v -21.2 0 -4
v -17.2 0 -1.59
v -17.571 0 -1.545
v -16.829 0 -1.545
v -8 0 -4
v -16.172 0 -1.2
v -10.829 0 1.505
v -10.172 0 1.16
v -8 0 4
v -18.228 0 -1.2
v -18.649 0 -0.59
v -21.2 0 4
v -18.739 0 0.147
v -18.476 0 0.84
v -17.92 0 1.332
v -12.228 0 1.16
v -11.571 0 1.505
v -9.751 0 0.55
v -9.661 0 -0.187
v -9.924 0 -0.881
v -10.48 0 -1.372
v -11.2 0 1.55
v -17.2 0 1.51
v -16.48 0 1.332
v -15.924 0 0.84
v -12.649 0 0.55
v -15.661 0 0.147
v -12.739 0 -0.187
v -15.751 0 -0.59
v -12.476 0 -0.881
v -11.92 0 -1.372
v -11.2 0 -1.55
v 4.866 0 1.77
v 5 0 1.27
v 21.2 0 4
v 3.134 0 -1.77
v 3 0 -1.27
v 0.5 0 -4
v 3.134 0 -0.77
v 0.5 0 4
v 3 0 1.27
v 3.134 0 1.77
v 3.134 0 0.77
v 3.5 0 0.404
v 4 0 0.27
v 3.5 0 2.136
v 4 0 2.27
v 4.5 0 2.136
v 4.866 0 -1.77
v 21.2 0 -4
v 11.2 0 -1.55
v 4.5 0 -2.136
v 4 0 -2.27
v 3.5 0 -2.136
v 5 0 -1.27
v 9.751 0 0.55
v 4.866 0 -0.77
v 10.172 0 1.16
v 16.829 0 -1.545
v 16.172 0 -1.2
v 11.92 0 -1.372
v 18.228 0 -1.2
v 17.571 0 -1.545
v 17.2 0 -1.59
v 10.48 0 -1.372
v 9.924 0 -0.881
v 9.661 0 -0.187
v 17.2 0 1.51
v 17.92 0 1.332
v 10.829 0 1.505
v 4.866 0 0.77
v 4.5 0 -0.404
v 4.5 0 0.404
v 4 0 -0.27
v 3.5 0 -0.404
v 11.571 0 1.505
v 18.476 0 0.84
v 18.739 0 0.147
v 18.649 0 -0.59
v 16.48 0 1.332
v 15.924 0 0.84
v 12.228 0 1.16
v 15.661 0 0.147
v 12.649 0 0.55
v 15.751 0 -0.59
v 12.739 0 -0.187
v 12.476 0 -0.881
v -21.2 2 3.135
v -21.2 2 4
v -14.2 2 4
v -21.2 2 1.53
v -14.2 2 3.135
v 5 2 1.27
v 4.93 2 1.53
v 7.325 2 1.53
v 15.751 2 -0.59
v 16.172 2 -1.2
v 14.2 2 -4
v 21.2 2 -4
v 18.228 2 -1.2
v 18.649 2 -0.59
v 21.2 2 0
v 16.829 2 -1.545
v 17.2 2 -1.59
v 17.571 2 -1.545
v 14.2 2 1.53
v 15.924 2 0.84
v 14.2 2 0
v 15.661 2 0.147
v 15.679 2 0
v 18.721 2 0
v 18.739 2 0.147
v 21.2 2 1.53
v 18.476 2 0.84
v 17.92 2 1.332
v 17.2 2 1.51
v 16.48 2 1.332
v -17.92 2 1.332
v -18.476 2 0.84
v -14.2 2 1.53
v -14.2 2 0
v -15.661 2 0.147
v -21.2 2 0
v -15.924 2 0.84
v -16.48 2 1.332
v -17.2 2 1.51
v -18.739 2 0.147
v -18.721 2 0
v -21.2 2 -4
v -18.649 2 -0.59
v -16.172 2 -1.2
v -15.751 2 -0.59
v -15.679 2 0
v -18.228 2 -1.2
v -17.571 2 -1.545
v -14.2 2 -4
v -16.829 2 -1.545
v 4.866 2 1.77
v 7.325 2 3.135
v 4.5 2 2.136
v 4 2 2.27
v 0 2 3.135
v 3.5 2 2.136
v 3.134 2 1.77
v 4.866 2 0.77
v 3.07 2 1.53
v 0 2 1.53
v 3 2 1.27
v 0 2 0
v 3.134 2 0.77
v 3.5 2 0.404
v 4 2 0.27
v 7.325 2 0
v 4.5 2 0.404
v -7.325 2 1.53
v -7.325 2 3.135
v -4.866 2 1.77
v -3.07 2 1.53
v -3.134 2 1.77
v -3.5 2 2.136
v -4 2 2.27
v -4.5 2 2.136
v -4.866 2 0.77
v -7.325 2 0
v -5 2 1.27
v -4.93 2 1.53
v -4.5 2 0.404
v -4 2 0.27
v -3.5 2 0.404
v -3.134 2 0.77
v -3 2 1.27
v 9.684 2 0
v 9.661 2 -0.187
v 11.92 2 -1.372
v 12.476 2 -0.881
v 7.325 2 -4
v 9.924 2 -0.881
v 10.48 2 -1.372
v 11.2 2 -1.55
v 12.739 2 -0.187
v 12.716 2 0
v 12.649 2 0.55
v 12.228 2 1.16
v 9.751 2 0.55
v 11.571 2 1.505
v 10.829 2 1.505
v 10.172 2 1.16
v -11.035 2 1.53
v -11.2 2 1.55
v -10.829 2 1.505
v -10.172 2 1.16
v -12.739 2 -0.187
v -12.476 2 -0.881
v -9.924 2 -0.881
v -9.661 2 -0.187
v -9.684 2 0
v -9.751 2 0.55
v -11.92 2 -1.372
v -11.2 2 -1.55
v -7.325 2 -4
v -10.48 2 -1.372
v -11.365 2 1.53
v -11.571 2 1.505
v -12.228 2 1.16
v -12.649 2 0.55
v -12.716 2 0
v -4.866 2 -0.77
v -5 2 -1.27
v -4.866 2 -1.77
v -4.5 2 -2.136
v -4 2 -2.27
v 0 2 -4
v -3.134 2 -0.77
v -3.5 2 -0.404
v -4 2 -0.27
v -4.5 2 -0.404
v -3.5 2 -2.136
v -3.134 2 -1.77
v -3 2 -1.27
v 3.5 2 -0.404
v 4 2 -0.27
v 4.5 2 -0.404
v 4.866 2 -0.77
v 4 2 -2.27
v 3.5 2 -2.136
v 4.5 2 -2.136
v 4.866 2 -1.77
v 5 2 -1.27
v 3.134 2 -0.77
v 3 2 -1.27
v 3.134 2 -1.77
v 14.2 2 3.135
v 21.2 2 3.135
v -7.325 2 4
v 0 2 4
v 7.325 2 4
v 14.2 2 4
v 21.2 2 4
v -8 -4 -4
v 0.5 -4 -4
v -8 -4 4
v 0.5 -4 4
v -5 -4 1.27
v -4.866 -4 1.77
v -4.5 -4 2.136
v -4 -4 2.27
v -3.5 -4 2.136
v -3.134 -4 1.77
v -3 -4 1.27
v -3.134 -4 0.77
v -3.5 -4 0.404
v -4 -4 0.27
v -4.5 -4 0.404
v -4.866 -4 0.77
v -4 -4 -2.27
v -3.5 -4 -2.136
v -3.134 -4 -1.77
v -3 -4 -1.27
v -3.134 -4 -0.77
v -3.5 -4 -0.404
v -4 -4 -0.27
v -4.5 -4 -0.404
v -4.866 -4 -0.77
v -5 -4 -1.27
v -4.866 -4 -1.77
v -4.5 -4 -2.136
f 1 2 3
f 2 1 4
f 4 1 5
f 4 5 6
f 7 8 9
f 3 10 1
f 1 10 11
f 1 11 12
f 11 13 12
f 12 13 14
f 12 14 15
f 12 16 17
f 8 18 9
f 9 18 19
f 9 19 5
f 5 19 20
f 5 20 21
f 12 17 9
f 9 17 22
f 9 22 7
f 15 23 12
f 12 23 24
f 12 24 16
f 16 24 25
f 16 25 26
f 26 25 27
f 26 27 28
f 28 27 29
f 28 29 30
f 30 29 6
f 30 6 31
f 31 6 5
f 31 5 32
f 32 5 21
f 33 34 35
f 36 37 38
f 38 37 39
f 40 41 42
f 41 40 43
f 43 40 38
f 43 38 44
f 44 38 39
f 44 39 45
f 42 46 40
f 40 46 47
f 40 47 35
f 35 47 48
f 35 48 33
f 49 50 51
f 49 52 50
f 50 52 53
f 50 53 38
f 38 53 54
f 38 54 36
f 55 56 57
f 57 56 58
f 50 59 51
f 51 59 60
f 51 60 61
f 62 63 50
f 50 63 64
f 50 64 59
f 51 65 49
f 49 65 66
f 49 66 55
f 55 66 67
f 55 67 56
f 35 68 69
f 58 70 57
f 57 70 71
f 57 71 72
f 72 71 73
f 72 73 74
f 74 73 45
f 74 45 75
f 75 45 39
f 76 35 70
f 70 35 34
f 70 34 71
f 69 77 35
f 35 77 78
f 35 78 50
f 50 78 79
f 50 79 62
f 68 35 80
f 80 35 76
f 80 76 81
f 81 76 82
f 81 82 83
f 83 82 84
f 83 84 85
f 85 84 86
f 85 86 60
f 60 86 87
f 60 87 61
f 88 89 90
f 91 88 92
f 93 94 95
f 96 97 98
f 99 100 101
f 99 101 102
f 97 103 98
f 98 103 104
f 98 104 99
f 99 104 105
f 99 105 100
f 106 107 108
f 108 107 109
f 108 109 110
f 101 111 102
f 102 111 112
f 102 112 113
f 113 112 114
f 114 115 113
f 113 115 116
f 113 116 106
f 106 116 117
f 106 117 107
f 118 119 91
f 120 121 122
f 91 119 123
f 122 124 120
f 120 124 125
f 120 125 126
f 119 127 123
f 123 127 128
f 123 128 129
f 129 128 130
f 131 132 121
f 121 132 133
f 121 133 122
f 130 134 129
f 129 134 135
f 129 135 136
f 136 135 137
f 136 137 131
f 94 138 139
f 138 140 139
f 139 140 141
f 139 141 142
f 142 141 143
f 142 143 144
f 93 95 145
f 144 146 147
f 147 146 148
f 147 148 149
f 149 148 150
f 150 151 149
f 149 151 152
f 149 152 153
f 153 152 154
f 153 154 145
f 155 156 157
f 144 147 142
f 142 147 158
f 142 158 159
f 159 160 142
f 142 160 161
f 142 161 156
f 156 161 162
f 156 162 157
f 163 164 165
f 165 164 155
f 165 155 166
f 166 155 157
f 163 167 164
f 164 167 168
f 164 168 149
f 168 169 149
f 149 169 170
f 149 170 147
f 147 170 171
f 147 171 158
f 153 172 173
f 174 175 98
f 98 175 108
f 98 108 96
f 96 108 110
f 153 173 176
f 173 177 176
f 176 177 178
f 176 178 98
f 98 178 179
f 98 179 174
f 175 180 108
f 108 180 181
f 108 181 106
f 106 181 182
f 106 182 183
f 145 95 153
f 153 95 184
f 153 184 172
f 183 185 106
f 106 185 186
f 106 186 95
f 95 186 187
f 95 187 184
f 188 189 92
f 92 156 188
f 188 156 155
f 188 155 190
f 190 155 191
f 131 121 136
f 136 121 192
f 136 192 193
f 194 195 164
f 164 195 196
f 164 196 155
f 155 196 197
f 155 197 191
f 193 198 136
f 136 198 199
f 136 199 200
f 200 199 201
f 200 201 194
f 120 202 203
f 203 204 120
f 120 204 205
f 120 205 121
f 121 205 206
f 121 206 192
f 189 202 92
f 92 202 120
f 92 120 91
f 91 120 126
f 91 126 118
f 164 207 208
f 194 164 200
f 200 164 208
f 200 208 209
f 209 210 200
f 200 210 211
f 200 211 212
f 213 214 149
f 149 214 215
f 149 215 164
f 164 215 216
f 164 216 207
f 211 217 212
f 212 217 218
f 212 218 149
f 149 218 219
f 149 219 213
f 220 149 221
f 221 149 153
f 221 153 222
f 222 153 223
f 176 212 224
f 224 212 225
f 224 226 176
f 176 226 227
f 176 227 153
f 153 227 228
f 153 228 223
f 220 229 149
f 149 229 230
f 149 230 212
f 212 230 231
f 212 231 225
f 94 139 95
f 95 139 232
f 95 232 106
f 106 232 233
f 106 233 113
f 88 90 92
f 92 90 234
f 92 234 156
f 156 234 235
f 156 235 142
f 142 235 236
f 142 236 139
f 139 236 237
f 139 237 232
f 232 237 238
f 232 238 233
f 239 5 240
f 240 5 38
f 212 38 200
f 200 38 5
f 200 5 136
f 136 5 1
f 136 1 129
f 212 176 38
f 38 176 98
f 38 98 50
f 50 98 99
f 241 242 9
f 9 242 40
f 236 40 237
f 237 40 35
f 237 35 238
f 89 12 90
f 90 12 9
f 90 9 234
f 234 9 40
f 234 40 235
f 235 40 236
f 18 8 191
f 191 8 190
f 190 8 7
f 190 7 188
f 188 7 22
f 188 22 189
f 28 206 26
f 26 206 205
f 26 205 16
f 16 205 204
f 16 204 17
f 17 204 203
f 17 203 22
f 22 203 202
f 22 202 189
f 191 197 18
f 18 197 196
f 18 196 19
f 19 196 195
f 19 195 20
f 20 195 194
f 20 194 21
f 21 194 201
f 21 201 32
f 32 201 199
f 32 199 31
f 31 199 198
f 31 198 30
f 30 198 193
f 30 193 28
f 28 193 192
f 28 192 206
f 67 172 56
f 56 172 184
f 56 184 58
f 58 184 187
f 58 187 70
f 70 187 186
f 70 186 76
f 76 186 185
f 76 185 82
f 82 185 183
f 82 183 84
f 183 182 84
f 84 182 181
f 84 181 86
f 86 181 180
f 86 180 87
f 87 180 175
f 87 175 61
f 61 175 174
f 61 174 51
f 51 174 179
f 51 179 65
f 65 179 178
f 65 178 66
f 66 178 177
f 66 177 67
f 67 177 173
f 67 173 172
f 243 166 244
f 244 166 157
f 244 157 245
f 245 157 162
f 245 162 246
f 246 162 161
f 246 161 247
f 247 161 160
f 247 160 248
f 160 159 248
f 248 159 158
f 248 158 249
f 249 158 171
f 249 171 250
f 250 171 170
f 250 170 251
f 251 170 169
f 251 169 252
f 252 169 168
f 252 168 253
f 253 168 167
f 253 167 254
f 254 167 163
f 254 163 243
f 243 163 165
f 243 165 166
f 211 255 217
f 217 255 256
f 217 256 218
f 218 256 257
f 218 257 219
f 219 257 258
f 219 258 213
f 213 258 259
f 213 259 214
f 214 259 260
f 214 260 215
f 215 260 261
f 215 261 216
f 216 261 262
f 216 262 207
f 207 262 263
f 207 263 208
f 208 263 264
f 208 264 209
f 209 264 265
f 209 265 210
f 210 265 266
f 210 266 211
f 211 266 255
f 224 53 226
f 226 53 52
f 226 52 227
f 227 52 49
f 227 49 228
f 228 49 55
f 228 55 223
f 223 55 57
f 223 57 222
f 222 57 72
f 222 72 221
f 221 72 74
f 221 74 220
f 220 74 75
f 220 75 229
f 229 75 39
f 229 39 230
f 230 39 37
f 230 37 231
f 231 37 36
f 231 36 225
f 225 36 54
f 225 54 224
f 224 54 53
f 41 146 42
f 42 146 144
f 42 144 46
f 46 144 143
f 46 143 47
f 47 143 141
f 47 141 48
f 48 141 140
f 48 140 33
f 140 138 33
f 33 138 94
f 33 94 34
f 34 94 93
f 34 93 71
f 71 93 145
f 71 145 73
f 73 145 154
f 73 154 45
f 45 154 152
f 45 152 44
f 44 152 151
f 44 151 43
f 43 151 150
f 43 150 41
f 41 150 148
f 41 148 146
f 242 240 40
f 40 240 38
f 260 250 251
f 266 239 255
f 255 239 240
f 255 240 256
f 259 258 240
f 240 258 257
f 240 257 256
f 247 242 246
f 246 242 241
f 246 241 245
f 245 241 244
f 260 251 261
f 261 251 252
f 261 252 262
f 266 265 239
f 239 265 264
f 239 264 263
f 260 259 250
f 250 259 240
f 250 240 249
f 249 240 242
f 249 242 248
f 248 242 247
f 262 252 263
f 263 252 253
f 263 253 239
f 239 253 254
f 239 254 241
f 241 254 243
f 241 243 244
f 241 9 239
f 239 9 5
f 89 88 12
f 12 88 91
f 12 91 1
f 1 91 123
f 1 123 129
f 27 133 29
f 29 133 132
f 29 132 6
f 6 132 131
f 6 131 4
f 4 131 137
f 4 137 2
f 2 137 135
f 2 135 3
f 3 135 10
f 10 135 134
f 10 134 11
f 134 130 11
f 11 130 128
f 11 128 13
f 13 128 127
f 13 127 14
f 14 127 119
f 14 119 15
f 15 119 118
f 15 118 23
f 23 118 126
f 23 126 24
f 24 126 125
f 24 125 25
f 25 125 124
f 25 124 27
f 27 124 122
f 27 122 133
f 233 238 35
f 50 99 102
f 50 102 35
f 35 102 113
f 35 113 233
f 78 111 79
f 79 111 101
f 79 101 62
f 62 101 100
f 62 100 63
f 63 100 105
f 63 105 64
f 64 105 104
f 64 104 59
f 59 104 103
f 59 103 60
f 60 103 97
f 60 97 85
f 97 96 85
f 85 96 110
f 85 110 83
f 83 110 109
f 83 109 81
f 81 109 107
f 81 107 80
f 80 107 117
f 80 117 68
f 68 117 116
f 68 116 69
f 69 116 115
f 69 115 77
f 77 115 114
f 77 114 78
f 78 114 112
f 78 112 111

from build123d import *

# Parameters (mm, degrees)
SKETCH1_W           = 30.4
SKETCH1_H           = 8
SKETCH1_R           = 1.55
SKETCH1_R_2         = 1
BOSS_EXTRUDE1_DEPTH = 2
SKETCH3_W           = 1
SKETCH3_H           = 8
BOSS_EXTRUDE2_DEPTH = 4
BOSS_EXTRUDE3_START = 4
SKETCH4_W           = 7.5
SKETCH4_H           = 8
SKETCH4_R           = 1
BOSS_EXTRUDE3_DEPTH = 4
SKETCH6_W           = 6
SKETCH6_H           = 8
SKETCH6_R           = 1.55
BOSS_EXTRUDE4_DEPTH = 2


with BuildPart() as part:
    # Sketch1 → Boss-Extrude1 (new body)
    with BuildSketch(Plane(origin=(0, 0, 0), x_dir=(1, 0, 0), z_dir=(0, 1, 0))):
        Rectangle(SKETCH1_W, SKETCH1_H)
        with Locations(Location((-11.2, 0, 0), (0, 0, 270))):
            Circle(SKETCH1_R, mode=Mode.SUBTRACT)
        with Locations(Location((11.2, 0, 0), (0, 0, 90))):
            Circle(SKETCH1_R, mode=Mode.SUBTRACT)
        with Locations(Location((-4, 1.27, 0), (0, 0, 270))):
            Circle(SKETCH1_R_2, mode=Mode.SUBTRACT)
        with Locations(Location((-4, -1.27, 0), (0, 0, 270))):
            Circle(SKETCH1_R_2, mode=Mode.SUBTRACT)
        with Locations(Location((4, 1.27, 0), (0, 0, 270))):
            Circle(SKETCH1_R_2, mode=Mode.SUBTRACT)
        with Locations(Location((4, -1.27, 0), (0, 0, 270))):
            Circle(SKETCH1_R_2, mode=Mode.SUBTRACT)
    extrude(amount=BOSS_EXTRUDE1_DEPTH)

    # Sketch3 → Boss-Extrude2 (add)
    with BuildSketch(Plane.XZ):
        Rectangle(SKETCH3_W, SKETCH3_H)
    extrude(amount=BOSS_EXTRUDE2_DEPTH)

    # Sketch4 → Boss-Extrude3 (add)
    with BuildSketch(Plane.XZ.offset(BOSS_EXTRUDE3_START)):
        with Locations((-4.25, 0)):
            Rectangle(SKETCH4_W, SKETCH4_H)
        with Locations(Location((-4, 1.27, 0), (0, 0, 90))):
            Circle(SKETCH4_R, mode=Mode.SUBTRACT)
        with Locations(Location((-4, -1.27, 0), (0, 0, 90))):
            Circle(SKETCH4_R, mode=Mode.SUBTRACT)
    extrude(amount=-BOSS_EXTRUDE3_DEPTH)

    # Sketch6 → Boss-Extrude4 (add)
    # profile 1 of 2: a face of its own
    with BuildSketch(Plane(origin=(0, 2, 0), x_dir=(1, 0, 0), z_dir=(0, 1, 0))):
        with Locations((-18.2, 0)):
            Rectangle(SKETCH6_W, SKETCH6_H)
        with Locations(Location((-17.2, 0.040141274, 0), (0, 0, 270))):
            Circle(SKETCH6_R, mode=Mode.SUBTRACT)
    # profile 2 of 2: a face of its own
    with BuildSketch(Plane(origin=(0, 2, 0), x_dir=(1, 0, 0), z_dir=(0, 1, 0))):
        with Locations((18.2, 0)):
            Rectangle(SKETCH6_W, SKETCH6_H)
        with Locations(Location((17.2, 0.040141274, 0), (0, 0, 270))):
            Circle(SKETCH6_R, mode=Mode.SUBTRACT)
    extrude(amount=-BOSS_EXTRUDE4_DEPTH)


solid = part.part
